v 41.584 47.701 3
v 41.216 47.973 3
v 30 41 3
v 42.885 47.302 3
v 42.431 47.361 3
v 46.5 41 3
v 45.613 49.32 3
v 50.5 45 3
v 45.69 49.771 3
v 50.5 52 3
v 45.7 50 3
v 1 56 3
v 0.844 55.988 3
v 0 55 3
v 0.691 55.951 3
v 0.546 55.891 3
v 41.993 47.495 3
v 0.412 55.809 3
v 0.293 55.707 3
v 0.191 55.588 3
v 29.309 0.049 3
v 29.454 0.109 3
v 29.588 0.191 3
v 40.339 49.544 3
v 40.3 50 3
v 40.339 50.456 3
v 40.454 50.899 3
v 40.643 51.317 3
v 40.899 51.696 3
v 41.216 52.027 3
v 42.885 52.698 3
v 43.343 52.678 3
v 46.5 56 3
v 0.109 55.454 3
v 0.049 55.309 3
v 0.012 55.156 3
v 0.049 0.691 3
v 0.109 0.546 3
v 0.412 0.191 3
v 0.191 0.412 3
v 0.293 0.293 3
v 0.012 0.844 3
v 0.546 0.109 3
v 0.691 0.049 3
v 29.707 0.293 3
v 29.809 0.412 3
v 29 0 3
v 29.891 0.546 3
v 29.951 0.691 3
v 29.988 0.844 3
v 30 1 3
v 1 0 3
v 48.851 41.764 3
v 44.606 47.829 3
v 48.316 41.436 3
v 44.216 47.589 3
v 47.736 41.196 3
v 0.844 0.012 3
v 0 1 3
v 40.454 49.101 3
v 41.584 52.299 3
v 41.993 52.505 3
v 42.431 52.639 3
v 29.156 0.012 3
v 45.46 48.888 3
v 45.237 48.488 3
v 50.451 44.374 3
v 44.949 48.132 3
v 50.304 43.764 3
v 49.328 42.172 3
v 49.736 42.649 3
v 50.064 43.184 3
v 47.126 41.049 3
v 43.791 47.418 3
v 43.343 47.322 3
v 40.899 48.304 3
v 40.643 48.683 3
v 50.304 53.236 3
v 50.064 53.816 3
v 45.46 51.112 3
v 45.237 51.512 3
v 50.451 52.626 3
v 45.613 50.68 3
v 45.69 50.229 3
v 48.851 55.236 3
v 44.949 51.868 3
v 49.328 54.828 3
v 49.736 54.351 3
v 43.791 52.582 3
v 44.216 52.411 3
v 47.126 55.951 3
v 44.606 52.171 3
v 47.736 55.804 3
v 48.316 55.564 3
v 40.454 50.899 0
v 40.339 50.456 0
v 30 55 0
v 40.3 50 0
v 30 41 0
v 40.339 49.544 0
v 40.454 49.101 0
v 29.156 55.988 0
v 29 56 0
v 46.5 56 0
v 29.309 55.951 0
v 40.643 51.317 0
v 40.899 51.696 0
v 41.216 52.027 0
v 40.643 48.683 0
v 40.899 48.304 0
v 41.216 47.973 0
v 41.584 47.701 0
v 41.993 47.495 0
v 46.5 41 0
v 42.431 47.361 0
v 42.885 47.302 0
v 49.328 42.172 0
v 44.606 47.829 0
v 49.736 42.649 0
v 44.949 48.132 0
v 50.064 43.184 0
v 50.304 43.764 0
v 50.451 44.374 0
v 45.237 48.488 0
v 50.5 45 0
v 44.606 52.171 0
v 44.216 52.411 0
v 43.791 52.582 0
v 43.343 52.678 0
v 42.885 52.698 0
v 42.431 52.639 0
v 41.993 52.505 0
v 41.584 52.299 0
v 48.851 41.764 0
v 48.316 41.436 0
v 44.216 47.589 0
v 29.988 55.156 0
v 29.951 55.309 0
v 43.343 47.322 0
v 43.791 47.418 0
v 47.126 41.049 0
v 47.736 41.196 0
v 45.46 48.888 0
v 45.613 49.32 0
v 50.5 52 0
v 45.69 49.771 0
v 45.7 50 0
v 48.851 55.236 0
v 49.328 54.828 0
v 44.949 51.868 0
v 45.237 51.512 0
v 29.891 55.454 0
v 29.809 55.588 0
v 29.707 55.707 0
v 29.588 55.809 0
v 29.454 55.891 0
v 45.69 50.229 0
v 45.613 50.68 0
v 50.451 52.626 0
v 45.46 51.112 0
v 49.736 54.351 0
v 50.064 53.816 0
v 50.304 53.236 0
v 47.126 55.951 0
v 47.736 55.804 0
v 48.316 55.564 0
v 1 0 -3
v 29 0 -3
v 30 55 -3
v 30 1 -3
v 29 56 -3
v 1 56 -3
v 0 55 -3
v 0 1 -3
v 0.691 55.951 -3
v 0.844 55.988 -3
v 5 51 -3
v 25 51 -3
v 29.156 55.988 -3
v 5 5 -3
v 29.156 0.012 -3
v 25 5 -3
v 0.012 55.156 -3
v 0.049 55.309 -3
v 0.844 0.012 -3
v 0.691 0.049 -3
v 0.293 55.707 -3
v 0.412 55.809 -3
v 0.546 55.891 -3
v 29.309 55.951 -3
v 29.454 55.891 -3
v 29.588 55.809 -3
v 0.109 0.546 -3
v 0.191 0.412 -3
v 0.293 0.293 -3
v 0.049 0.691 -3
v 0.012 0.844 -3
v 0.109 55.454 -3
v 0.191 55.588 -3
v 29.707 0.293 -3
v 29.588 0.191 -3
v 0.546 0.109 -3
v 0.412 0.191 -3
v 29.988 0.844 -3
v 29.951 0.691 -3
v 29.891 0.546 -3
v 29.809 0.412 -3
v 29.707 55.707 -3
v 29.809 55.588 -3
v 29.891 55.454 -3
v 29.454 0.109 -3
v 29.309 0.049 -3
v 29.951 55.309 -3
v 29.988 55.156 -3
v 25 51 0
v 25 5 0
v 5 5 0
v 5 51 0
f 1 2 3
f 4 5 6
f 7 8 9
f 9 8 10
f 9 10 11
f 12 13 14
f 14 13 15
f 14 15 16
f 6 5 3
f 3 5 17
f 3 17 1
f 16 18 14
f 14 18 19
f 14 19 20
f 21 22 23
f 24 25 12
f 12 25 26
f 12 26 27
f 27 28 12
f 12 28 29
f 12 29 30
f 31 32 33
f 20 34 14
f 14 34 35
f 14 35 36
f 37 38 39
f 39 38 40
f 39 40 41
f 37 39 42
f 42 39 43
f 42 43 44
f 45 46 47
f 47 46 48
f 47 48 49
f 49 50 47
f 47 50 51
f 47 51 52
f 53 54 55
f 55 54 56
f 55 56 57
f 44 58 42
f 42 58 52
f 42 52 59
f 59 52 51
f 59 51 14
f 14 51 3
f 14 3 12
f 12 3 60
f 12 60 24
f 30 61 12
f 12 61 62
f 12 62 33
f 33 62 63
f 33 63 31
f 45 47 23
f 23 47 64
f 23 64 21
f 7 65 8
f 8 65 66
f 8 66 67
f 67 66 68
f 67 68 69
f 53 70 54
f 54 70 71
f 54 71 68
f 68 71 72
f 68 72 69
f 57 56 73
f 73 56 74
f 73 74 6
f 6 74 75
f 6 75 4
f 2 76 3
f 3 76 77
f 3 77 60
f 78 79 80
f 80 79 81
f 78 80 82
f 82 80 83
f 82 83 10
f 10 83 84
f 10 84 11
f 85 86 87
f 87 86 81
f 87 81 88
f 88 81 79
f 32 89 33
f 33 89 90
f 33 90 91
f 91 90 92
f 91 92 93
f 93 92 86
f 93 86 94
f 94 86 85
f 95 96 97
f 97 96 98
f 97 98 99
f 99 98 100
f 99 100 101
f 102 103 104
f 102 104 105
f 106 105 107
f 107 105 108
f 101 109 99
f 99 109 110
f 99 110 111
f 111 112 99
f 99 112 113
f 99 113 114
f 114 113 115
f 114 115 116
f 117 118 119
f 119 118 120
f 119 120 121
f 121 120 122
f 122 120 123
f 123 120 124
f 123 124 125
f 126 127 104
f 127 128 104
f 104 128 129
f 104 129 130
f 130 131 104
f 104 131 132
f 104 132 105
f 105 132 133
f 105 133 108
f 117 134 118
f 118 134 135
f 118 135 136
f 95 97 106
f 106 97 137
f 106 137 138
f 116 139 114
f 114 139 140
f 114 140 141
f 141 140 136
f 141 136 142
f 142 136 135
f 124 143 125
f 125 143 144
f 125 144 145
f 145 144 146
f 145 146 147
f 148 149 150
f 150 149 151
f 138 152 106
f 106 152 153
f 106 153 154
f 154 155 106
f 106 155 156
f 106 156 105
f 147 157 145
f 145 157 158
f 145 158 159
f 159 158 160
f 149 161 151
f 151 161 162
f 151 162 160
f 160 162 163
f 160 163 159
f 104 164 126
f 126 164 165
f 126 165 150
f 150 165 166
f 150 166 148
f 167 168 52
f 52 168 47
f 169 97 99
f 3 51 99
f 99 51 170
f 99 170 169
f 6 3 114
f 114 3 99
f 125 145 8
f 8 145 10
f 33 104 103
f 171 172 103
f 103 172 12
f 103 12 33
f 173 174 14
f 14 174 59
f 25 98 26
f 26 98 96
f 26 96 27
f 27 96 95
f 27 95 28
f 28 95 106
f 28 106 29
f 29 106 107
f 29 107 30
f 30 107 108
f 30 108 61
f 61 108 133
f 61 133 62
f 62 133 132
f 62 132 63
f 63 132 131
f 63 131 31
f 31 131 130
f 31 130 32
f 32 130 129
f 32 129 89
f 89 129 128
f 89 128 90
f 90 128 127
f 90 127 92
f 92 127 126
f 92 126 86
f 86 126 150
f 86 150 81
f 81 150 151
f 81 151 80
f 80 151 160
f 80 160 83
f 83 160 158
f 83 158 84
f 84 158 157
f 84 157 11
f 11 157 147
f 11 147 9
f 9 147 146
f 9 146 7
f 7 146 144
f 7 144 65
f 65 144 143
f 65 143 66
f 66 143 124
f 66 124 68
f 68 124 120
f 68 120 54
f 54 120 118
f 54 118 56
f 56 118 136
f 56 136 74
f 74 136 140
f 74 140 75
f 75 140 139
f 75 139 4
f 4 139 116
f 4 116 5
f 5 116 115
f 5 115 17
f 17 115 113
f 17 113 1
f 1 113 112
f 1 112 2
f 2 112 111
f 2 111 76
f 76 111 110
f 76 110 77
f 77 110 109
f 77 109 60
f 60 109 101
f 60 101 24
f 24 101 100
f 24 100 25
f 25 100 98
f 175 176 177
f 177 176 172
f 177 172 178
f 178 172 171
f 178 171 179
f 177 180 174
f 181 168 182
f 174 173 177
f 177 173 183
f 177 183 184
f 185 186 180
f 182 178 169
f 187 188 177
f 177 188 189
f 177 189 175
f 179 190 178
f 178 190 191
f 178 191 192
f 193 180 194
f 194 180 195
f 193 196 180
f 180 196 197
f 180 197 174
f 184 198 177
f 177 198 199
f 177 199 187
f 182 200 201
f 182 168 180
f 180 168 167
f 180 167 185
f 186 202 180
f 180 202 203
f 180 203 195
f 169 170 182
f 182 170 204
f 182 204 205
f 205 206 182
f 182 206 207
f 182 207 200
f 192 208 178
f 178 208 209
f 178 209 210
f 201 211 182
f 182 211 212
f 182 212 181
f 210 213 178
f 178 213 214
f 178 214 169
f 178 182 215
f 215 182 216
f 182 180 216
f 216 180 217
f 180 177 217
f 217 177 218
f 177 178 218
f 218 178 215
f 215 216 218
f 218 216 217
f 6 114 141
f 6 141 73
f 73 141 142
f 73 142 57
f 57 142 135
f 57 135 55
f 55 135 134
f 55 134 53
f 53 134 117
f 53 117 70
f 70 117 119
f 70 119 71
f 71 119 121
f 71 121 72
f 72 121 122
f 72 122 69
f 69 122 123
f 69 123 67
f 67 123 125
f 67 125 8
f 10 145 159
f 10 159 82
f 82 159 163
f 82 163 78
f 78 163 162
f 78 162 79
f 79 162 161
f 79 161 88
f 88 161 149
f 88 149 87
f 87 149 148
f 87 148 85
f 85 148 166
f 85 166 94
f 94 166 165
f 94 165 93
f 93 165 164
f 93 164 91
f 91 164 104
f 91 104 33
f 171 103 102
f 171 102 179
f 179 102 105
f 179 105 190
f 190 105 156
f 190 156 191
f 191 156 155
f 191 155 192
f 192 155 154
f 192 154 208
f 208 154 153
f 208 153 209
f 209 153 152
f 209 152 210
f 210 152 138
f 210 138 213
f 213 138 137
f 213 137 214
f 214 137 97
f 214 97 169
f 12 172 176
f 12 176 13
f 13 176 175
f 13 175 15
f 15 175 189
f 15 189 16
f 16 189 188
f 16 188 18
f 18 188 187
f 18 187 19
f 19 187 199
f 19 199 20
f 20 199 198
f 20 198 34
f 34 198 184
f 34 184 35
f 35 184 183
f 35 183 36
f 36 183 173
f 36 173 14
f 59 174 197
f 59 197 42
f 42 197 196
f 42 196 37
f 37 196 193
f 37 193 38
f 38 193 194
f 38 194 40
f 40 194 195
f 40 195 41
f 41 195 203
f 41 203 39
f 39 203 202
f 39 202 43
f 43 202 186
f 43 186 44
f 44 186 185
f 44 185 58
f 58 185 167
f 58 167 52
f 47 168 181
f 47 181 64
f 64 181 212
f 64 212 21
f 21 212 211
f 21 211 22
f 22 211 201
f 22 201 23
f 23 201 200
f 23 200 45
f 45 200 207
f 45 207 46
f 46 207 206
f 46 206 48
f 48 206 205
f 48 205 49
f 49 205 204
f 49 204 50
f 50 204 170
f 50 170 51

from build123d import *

# Parameters (mm, degrees)
SKETCH1_R           = 2.7
BOSS_EXTRUDE1_DEPTH = 3
SKETCH2_W           = 30
SKETCH2_H           = 56
SKETCH2_W_2         = 20
SKETCH2_H_2         = 46
BOSS_EXTRUDE2_DEPTH = 3
FILLET1_R           = 4
FILLET3_R           = 1


with BuildPart() as part:
    # Sketch1 → Boss-Extrude1 (new body)
    with BuildSketch(Plane.XY):
        Polygon((0, 0), (0, 56), (50.5, 56), (50.5, 41), (30, 41), (30, 0), align=None)
        with Locations((43, 50)):
            Circle(SKETCH1_R, mode=Mode.SUBTRACT)
    extrude(amount=BOSS_EXTRUDE1_DEPTH)

    # Sketch2 → Boss-Extrude2 (add)
    with BuildSketch(Plane(origin=(0, 0, 0), x_dir=(-1, 0, 0), z_dir=(0, 0, -1))):
        with Locations((-15, 28)):
            Rectangle(SKETCH2_W, SKETCH2_H)
        with Locations((-15, 28)):
            Rectangle(SKETCH2_W_2, SKETCH2_H_2, mode=Mode.SUBTRACT)
    extrude(amount=BOSS_EXTRUDE2_DEPTH)

    # Fillet1
    fillet1_edges = [part.edges().sort_by_distance(p)[0] for p in [
        (50.5, 56, 1.5),
        (50.5, 41, 1.5),
    ]]
    fillet(fillet1_edges, radius=FILLET1_R)

    # Fillet3
    fillet3_edges = [part.edges().sort_by_distance(p)[0] for p in [
        (0, 0, 0),
        (0, 56, 0),
        (30, 0, 0),
        (30, 56, -1.5),
    ]]
    fillet(fillet3_edges, radius=FILLET3_R)


solid = part.part
